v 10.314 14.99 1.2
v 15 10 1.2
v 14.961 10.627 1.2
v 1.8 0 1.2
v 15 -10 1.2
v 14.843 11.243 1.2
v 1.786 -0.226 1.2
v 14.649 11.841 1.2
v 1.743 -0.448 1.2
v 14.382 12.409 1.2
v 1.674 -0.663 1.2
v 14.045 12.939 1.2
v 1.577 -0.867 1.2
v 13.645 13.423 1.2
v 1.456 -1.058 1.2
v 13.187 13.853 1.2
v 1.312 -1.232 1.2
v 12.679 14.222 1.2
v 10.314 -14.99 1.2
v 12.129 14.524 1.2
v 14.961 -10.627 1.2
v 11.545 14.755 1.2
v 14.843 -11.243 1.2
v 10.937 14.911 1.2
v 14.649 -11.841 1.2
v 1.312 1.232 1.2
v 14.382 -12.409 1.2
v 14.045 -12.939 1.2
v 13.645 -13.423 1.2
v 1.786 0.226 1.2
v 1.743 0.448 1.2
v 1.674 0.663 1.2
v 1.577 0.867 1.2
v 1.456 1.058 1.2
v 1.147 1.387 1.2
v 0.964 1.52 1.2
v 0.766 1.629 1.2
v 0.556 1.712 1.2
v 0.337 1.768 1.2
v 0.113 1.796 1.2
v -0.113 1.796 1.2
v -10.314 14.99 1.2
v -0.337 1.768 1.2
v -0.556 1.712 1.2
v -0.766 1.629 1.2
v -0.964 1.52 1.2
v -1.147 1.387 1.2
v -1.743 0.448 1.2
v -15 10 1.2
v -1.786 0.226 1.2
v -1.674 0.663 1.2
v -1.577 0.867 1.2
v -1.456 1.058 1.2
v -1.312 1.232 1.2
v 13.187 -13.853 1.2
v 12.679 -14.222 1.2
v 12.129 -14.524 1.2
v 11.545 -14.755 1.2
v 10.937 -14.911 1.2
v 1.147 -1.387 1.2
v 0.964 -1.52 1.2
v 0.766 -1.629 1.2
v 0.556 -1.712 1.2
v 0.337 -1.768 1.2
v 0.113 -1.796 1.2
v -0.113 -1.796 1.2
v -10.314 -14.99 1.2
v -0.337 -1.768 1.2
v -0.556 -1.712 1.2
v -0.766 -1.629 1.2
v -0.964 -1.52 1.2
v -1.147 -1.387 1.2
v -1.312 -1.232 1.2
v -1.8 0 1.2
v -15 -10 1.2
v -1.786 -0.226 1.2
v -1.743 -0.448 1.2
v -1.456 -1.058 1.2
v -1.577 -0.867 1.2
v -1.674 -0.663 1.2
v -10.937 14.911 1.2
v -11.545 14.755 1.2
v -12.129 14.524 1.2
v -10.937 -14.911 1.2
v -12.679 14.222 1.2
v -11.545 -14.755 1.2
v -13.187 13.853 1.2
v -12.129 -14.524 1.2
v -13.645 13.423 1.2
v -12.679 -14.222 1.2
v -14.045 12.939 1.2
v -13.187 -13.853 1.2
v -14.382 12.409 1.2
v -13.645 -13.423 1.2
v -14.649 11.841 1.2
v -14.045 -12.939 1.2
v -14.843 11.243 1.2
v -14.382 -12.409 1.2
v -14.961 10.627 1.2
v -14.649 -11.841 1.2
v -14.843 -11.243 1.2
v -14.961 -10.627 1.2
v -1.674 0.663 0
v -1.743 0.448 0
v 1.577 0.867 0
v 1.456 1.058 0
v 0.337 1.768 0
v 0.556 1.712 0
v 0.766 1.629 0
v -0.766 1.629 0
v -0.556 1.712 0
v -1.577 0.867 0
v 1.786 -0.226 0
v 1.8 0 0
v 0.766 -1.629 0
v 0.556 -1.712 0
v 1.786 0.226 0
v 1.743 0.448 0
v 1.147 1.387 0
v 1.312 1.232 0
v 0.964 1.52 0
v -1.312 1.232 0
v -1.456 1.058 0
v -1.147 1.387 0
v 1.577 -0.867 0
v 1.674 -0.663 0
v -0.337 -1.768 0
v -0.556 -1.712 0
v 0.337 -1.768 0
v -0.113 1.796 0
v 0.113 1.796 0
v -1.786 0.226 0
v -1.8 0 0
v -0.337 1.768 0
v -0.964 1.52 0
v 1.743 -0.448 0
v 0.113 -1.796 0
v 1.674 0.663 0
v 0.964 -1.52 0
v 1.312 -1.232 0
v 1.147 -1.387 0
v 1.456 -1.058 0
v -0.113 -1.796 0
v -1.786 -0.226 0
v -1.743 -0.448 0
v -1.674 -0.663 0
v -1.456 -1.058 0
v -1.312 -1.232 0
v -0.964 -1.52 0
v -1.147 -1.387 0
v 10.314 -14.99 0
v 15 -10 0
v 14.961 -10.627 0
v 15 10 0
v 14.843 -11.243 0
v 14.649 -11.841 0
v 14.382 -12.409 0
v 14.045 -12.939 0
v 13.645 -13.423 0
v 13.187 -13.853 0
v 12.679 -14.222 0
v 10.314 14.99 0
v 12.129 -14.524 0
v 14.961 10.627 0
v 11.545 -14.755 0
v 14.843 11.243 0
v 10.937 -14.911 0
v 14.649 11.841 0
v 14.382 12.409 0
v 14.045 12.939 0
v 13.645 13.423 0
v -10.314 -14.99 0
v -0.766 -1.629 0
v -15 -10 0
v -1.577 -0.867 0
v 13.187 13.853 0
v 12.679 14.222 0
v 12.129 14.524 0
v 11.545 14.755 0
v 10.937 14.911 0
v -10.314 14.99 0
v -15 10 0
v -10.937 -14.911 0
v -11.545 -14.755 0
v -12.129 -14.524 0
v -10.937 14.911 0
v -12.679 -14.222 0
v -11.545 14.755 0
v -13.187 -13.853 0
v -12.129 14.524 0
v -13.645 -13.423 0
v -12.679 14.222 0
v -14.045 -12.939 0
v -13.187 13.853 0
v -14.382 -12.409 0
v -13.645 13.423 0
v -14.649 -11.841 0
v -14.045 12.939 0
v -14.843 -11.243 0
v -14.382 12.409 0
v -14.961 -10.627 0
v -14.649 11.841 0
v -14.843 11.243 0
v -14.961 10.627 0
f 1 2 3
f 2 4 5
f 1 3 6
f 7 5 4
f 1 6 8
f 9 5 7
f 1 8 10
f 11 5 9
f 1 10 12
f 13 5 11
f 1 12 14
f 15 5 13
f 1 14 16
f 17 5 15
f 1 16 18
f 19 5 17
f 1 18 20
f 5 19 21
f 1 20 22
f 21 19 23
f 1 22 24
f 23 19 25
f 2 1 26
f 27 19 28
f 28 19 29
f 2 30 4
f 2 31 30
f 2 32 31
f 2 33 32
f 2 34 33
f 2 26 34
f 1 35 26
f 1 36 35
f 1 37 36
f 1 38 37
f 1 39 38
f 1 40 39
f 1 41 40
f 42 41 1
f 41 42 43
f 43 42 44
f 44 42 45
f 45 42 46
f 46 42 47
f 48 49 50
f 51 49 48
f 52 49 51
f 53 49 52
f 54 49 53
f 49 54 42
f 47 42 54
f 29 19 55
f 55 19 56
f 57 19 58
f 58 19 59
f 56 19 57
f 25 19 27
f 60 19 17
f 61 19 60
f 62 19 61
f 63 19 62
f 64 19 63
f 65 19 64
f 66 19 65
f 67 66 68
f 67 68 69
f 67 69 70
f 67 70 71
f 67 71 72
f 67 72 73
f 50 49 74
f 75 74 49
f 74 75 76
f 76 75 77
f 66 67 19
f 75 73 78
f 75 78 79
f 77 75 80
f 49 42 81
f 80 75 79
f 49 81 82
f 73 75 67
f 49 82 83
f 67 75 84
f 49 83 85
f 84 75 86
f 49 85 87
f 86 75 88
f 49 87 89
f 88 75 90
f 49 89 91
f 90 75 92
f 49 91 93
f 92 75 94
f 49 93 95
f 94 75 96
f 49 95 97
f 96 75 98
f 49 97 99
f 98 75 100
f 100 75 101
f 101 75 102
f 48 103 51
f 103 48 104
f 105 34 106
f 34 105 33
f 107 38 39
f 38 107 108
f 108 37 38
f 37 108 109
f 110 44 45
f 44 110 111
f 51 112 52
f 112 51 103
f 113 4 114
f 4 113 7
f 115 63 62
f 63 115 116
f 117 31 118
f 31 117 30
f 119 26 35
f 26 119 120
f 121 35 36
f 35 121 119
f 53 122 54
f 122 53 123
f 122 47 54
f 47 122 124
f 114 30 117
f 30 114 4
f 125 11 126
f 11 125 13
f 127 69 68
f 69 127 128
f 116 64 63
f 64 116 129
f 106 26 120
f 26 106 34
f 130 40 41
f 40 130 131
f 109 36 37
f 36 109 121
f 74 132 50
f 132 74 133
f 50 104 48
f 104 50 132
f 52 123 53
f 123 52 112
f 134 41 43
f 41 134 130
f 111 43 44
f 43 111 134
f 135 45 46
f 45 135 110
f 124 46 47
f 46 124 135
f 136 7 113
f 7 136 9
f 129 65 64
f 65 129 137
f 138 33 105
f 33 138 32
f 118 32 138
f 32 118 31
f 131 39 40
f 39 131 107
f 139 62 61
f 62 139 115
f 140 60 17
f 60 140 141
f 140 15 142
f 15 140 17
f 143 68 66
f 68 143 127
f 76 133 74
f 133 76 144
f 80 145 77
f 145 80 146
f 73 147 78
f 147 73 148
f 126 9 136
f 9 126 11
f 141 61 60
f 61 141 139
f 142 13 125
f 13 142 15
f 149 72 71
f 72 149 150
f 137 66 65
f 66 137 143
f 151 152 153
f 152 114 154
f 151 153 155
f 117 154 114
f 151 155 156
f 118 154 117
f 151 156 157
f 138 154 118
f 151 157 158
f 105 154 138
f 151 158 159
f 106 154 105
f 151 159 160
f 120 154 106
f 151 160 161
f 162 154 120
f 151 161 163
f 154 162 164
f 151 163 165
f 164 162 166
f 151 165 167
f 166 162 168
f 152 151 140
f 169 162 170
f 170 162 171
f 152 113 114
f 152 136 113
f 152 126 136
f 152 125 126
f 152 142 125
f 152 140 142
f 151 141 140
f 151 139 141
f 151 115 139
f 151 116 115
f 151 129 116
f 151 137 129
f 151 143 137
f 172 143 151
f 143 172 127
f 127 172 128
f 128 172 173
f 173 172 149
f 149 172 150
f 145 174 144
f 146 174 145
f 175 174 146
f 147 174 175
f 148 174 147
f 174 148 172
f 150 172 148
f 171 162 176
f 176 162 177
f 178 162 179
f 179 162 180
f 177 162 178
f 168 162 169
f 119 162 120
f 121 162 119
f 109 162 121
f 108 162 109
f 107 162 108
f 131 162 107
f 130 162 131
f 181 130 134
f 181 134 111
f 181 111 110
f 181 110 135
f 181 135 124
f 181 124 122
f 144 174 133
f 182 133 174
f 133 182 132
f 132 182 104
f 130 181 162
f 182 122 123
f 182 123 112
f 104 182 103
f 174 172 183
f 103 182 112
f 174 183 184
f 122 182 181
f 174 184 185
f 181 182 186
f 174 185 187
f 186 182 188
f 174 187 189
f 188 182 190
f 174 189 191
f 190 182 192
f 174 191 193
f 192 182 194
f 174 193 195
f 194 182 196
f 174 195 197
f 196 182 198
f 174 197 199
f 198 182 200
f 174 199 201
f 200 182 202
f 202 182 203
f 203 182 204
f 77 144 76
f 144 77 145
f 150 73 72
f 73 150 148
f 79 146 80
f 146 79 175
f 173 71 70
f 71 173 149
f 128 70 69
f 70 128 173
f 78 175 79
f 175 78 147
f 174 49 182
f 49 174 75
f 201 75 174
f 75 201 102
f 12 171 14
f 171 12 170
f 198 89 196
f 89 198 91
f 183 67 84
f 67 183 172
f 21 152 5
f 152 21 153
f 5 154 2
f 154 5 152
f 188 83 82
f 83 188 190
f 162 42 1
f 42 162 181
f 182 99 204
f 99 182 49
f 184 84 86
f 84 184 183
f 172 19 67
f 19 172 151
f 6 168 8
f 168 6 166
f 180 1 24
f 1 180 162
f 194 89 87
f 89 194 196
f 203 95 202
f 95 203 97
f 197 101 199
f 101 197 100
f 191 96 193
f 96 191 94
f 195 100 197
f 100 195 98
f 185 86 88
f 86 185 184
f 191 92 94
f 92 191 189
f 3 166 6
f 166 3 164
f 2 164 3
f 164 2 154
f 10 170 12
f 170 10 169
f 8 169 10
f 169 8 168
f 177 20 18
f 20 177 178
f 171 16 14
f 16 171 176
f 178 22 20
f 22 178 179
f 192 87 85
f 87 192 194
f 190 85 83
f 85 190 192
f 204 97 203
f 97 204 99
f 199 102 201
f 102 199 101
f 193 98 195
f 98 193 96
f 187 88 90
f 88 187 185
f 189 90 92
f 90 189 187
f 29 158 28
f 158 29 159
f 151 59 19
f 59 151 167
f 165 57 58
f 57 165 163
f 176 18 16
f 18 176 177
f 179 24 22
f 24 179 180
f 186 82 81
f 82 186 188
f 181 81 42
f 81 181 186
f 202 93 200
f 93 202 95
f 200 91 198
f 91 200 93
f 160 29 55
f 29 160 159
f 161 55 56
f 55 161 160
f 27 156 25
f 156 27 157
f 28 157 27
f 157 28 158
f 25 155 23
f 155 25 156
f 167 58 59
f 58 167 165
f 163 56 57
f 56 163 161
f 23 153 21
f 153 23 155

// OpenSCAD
$fn = 50;


difference() {
	union() {
		hull() {
			translate(v = [-10.0000000000, 10.0000000000, 0]) {
				cylinder(h = 15, r = 5);
			}
			translate(v = [10.0000000000, 10.0000000000, 0]) {
				cylinder(h = 15, r = 5);
			}
			translate(v = [-10.0000000000, -10.0000000000, 0]) {
				cylinder(h = 15, r = 5);
			}
			translate(v = [10.0000000000, -10.0000000000, 0]) {
				cylinder(h = 15, r = 5);
			}
		}
	}
	union() {
		translate(v = [0, 0, 1.2000000000]) {
			hull() {
				translate(v = [-10.0000000000, 10.0000000000, 0]) {
					cylinder(h = 13.8000000000, r = 3.8000000000);
				}
				translate(v = [10.0000000000, 10.0000000000, 0]) {
					cylinder(h = 13.8000000000, r = 3.8000000000);
				}
				translate(v = [-10.0000000000, -10.0000000000, 0]) {
					cylinder(h = 13.8000000000, r = 3.8000000000);
				}
				translate(v = [10.0000000000, -10.0000000000, 0]) {
					cylinder(h = 13.8000000000, r = 3.8000000000);
				}
			}
		}
		#cylinder(h = 1.2000000000, r = 1.8000000000);
		translate(v = [-250.0000000000, -250.0000000000, 1.2000000000]) {
			cube(size = [500, 500, 500]);
		}
		translate(v = [-250.0000000000, -250.0000000000, 1.2000000000]) {
			cube(size = [500, 500, 500]);
		}
		translate(v = [-250.0000000000, -250.0000000000, 1.2000000000]) {
			cube(size = [500, 500, 500]);
		}
	}
}
